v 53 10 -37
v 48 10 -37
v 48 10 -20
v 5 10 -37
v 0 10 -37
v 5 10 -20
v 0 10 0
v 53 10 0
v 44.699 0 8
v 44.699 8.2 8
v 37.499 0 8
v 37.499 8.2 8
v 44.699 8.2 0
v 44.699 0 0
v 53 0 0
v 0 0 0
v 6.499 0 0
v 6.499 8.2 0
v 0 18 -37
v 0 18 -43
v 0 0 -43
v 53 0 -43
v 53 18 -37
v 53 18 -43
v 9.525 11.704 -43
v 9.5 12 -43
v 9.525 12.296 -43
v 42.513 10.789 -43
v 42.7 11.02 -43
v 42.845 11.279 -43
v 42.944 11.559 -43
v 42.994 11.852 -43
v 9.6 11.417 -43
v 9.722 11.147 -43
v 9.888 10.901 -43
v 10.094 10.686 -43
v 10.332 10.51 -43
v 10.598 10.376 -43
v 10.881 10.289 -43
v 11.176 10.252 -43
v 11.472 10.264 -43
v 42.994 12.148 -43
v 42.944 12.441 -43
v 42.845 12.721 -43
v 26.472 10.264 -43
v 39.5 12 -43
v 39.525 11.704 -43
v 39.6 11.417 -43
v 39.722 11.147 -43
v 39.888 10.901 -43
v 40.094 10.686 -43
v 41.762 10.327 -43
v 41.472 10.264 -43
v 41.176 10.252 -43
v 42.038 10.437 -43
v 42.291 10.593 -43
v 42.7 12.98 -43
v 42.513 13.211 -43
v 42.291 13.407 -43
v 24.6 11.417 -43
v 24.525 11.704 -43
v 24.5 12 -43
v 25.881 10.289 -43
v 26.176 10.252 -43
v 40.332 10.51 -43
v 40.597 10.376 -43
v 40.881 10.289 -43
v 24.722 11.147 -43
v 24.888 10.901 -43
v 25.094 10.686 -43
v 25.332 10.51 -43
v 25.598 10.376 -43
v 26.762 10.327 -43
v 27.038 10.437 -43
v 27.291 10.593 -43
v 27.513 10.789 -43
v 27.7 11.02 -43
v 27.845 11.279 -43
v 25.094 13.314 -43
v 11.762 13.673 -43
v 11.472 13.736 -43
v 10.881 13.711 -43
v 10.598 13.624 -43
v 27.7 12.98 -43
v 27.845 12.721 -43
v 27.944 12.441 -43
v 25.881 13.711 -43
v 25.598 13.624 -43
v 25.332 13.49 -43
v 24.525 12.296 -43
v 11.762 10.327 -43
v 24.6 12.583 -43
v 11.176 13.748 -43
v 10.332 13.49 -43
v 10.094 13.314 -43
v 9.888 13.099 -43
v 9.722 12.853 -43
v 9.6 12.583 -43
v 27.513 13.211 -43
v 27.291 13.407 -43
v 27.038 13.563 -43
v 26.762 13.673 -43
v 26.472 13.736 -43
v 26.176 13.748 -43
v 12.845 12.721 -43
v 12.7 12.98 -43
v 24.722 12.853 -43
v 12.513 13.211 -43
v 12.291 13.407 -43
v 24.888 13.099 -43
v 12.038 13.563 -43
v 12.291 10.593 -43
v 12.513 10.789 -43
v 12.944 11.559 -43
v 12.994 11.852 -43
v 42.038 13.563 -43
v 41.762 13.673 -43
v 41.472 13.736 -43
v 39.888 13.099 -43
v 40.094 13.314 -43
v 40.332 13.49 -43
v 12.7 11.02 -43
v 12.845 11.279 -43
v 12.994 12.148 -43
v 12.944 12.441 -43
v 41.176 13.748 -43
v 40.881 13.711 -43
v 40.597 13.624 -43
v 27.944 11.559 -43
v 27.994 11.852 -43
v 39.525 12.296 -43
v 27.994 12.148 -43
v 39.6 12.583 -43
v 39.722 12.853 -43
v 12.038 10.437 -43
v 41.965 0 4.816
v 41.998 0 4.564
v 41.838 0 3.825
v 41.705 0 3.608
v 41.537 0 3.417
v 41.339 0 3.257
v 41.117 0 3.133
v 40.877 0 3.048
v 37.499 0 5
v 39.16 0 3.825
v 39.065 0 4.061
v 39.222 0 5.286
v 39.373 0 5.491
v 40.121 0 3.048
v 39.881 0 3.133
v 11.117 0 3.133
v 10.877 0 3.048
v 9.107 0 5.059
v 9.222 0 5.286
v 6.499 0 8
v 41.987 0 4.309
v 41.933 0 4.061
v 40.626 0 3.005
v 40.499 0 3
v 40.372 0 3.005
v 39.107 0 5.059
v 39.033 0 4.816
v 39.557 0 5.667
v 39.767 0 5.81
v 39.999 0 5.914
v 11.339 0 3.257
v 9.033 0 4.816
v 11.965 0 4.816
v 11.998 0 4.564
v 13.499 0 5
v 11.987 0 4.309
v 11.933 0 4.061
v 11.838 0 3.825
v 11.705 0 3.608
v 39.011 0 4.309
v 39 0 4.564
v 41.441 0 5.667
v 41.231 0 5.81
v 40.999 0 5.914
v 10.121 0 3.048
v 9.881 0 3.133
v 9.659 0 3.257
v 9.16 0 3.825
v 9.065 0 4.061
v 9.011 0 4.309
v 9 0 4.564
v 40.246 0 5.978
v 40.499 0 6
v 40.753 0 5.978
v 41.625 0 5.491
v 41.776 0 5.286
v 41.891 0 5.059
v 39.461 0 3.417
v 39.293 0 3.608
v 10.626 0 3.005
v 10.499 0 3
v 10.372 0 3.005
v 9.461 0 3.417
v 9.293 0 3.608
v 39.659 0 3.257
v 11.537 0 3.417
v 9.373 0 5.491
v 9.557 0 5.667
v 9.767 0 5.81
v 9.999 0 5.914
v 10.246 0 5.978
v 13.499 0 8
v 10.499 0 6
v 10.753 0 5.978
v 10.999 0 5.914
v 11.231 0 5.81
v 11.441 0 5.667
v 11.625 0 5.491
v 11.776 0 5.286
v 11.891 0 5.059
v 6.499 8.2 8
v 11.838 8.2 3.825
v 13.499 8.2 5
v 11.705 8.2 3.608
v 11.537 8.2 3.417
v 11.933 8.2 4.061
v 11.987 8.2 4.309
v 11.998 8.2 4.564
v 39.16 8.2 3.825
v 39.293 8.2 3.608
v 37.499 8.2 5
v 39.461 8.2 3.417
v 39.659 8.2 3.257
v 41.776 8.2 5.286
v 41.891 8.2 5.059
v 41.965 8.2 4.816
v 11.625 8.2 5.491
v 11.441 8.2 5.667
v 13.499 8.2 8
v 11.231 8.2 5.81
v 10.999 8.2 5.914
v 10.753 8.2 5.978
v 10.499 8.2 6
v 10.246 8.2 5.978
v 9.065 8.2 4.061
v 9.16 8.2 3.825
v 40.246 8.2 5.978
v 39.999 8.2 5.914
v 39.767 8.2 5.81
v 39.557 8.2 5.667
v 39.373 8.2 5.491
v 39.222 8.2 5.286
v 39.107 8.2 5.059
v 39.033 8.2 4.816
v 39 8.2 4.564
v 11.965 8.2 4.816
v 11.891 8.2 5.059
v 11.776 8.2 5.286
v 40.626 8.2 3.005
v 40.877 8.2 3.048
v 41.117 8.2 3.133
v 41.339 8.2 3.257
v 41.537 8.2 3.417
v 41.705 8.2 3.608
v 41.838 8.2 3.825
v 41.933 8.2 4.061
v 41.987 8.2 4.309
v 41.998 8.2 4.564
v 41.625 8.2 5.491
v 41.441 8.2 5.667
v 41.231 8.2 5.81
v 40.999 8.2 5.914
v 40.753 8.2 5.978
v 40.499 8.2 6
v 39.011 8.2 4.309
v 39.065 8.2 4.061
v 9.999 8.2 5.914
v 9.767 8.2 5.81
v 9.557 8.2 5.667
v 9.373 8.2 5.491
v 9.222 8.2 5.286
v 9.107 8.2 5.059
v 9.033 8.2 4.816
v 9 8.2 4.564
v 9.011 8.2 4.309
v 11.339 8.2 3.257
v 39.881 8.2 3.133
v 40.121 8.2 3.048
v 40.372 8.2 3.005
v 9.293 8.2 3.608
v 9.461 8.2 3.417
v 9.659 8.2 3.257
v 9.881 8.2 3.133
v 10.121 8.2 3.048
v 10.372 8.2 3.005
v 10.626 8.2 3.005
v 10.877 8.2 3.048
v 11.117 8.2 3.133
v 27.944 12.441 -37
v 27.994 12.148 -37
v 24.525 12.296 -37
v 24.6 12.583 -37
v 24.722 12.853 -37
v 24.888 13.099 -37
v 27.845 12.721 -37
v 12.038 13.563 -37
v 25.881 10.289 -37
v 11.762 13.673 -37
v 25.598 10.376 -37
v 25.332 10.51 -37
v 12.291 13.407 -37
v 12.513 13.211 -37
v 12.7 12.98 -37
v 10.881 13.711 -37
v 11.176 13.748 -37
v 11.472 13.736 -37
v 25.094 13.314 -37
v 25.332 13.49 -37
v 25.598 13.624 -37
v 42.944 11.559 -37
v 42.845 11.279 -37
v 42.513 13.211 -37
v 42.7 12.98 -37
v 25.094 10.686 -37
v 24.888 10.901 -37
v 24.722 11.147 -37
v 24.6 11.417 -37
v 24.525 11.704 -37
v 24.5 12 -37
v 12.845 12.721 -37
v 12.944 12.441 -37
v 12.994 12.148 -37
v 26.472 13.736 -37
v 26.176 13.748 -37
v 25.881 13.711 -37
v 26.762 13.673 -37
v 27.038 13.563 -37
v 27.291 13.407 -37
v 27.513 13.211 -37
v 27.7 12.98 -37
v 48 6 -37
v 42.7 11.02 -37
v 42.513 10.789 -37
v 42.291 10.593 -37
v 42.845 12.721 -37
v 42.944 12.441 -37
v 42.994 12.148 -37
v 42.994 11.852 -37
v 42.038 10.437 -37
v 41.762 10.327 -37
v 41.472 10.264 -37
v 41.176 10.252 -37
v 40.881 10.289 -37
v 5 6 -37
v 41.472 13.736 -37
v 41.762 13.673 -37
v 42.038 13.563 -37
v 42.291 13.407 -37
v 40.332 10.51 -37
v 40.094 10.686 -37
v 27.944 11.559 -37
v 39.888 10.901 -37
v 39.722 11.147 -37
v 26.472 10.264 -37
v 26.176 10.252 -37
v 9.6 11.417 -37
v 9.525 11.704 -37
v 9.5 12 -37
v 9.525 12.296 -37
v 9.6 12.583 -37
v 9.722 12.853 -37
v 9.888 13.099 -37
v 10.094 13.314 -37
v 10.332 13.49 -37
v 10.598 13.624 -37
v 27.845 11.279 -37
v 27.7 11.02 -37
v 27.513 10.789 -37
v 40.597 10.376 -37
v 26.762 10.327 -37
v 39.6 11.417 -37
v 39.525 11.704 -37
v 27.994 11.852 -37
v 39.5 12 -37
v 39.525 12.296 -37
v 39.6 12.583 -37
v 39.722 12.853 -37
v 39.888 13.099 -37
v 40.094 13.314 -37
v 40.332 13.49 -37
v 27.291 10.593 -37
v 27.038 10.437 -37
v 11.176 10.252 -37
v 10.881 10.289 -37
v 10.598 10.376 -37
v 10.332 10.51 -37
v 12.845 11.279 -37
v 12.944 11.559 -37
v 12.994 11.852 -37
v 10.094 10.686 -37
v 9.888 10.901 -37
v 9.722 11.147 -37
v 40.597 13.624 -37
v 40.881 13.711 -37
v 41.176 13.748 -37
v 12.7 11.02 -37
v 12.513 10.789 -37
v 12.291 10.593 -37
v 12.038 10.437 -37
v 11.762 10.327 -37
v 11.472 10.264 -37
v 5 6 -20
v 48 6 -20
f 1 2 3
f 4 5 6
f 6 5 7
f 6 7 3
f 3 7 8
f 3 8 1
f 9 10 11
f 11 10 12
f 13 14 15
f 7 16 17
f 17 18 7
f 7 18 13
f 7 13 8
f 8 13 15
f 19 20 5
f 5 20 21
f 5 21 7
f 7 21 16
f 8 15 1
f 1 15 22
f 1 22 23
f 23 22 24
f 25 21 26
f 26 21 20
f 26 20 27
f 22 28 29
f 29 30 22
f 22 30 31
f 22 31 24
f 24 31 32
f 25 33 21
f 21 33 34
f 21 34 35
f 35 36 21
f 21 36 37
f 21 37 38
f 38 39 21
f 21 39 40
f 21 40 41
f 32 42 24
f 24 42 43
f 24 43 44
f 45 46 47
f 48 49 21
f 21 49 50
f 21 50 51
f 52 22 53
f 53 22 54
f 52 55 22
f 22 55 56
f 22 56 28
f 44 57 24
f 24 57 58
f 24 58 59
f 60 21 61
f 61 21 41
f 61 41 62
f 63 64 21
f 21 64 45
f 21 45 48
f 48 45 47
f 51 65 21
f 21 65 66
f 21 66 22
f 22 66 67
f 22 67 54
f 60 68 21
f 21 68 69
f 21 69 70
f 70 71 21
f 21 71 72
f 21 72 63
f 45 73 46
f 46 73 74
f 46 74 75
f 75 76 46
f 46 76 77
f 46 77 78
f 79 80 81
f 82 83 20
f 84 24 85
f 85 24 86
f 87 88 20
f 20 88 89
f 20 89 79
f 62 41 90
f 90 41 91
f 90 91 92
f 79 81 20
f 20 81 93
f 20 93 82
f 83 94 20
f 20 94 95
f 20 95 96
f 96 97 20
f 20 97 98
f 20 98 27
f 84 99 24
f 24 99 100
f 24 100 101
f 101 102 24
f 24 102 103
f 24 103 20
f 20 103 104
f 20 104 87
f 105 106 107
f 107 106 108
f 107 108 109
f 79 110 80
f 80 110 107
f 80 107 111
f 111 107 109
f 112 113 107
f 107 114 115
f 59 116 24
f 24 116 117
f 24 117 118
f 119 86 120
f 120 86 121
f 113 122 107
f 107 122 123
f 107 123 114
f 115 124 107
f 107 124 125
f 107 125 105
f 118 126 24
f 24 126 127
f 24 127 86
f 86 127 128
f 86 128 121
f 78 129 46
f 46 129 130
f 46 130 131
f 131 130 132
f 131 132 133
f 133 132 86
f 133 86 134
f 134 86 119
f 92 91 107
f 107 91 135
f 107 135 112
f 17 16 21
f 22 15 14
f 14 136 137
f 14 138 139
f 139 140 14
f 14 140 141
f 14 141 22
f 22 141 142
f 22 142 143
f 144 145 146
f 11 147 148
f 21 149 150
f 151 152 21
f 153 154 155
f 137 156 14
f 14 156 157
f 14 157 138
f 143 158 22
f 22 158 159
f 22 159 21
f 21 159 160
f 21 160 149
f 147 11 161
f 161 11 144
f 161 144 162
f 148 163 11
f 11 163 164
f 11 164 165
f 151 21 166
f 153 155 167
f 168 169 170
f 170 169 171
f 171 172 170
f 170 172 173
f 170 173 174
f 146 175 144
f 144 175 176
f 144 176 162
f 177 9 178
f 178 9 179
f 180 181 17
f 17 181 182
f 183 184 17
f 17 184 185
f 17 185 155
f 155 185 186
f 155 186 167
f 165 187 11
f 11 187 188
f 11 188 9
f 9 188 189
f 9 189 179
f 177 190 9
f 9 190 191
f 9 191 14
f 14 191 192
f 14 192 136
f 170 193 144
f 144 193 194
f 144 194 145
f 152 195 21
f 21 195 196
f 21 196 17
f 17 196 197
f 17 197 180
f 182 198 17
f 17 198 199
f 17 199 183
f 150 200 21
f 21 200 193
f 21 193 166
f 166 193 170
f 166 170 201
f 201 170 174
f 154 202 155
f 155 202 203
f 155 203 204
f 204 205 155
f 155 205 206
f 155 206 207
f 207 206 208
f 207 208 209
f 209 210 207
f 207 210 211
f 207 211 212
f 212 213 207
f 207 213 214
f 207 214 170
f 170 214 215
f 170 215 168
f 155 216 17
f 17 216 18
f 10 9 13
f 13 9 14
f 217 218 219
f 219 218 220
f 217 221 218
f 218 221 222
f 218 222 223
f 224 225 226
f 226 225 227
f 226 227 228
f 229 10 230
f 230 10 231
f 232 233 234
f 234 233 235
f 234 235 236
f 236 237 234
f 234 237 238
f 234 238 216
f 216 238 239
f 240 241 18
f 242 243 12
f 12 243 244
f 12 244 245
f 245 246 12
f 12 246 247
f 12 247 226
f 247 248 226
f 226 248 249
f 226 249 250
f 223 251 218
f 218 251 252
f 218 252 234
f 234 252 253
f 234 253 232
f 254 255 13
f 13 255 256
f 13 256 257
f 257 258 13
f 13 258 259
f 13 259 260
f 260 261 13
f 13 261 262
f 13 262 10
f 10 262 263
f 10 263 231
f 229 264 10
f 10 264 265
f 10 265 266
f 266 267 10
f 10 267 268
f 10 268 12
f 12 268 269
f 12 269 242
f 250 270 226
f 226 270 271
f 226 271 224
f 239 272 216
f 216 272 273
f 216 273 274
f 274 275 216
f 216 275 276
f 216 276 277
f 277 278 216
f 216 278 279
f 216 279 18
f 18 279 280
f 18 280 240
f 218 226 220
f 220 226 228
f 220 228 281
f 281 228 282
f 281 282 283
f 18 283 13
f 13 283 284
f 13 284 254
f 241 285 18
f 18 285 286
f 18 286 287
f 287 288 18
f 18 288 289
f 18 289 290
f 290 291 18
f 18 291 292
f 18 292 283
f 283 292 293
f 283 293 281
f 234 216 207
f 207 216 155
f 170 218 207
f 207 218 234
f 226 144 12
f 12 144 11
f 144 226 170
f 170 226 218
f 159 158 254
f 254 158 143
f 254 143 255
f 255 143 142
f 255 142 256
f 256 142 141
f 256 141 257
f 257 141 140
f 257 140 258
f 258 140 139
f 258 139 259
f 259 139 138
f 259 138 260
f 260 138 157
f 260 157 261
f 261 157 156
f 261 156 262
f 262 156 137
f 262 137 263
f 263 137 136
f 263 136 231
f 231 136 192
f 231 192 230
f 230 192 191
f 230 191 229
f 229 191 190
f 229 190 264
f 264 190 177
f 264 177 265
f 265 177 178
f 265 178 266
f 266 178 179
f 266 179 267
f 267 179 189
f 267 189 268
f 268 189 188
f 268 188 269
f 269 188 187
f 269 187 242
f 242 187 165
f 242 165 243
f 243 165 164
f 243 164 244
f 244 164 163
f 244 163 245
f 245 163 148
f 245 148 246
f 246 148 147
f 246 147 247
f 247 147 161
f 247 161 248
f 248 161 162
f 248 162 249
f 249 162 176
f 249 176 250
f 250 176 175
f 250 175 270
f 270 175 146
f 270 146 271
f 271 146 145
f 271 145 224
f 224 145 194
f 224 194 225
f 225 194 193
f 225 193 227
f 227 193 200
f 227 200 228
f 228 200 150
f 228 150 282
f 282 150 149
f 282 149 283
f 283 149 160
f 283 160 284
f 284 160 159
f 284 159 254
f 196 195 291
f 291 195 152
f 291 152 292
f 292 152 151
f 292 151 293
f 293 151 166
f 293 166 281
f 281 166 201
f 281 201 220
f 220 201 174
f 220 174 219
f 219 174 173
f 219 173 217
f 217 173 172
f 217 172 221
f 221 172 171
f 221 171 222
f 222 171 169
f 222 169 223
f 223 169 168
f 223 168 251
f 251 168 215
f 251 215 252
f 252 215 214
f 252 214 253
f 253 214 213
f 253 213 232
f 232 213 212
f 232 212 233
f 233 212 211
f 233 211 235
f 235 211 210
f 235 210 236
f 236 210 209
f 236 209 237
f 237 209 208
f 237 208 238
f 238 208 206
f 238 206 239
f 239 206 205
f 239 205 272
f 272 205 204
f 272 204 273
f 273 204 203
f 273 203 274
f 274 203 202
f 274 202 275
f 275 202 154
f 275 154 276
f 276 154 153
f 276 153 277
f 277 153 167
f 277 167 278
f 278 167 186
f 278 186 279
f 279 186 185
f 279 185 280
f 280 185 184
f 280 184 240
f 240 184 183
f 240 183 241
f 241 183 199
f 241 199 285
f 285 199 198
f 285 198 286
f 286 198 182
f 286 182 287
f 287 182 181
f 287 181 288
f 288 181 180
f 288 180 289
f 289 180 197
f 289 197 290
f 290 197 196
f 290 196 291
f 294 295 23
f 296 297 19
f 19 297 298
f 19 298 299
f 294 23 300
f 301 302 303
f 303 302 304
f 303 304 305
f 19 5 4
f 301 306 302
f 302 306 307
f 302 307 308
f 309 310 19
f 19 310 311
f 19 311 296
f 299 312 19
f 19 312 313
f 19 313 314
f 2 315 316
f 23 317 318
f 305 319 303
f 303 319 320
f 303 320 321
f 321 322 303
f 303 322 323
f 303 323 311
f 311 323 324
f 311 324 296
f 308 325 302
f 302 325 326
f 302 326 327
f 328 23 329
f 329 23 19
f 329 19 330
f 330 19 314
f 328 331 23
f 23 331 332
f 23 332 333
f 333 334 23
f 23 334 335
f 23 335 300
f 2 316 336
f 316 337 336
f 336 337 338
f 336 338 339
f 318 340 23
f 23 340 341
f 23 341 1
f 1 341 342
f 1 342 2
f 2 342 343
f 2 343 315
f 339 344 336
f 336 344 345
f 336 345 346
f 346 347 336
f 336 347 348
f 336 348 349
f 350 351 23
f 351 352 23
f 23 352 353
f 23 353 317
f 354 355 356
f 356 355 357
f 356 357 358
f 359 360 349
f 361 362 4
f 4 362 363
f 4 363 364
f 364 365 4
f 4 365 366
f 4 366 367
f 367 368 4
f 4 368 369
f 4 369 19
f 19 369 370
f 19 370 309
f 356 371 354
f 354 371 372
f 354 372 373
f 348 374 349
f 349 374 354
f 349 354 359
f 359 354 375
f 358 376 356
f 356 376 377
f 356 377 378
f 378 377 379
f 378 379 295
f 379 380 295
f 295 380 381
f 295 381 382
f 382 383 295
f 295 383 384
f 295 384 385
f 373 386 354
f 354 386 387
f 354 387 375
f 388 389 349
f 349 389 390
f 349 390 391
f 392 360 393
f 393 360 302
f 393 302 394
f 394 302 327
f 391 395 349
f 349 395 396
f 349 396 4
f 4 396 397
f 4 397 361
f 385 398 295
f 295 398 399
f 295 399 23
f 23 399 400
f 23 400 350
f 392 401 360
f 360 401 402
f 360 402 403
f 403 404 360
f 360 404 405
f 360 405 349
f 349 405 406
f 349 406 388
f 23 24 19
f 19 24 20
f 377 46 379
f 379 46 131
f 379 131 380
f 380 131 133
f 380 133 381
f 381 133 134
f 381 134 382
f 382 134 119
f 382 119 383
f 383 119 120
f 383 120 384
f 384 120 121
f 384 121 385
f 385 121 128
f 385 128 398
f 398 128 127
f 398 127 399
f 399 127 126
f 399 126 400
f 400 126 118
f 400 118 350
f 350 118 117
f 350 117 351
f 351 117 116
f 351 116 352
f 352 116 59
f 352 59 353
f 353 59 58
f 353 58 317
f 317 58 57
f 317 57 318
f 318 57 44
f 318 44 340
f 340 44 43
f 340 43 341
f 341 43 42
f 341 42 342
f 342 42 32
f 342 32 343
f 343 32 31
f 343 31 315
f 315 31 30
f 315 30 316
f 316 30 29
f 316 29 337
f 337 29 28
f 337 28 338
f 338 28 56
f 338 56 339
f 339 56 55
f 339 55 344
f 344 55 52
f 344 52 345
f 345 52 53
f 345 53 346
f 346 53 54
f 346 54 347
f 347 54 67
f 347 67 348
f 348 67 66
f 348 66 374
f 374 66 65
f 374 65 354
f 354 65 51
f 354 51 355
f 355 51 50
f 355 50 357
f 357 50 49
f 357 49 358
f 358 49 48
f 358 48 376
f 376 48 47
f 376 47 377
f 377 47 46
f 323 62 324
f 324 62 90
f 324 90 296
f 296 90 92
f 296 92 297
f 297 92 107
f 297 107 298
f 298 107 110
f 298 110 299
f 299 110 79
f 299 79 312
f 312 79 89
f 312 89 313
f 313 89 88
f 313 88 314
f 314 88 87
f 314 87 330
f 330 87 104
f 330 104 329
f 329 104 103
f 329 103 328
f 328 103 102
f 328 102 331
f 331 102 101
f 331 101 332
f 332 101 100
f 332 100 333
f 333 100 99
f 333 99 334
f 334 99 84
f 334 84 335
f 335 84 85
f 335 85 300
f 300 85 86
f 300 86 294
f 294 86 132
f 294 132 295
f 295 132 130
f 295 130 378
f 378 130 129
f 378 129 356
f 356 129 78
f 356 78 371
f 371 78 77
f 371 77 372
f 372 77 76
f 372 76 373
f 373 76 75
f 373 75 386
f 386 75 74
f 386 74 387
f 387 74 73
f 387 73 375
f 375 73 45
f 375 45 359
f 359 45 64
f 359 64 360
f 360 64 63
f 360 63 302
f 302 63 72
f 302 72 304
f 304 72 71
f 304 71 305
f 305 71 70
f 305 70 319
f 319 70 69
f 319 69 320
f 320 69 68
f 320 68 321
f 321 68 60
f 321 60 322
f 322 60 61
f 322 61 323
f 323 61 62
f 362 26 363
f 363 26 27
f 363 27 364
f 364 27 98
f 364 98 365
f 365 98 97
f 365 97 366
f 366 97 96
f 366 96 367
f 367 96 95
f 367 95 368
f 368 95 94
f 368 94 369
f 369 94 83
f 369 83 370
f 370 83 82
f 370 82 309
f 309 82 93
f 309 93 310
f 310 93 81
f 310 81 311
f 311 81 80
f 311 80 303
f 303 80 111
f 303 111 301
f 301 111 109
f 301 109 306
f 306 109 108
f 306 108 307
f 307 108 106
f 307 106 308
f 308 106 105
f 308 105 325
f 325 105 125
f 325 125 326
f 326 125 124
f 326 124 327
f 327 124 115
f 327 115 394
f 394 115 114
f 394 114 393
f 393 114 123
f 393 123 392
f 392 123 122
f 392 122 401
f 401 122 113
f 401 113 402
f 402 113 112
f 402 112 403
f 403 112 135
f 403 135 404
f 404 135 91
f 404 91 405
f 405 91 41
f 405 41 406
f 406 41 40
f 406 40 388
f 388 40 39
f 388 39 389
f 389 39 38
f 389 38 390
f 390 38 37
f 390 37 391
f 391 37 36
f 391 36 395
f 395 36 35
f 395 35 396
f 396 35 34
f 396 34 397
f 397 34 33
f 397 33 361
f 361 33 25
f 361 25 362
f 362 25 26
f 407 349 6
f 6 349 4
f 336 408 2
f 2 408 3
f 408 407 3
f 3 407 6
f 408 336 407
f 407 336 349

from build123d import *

# Parameters (mm, degrees)
SKETCH2_W           = 53
SKETCH2_H           = 43
BOSS_EXTRUDE1_DEPTH = 10
SKETCH3_W           = 38.2
SKETCH3_H           = 8.2
BOSS_EXTRUDE2_DEPTH = 8
SKETCH4_W           = 24
SKETCH4_H           = 8.2
CUT_EXTRUDE1_DEPTH  = 3
SKETCH5_R           = 1.5
CUT_EXTRUDE2_DEPTH  = 69.740381145
SKETCH6_W           = 53
SKETCH6_H           = 6
BOSS_EXTRUDE4_DEPTH = 8
SKETCH7_R           = 1.75
CUT_EXTRUDE3_DEPTH  = 76.723180071
SKETCH8_W           = 43
SKETCH8_H           = 17
CUT_EXTRUDE4_DEPTH  = 4


with BuildPart() as part:
    # Sketch2 → Boss-Extrude1 (new body)
    with BuildSketch(Plane(origin=(0, 0, 0), x_dir=(1, 0, 0), z_dir=(0, 1, 0))):
        with Locations((26.5, 21.5)):
            Rectangle(SKETCH2_W, SKETCH2_H)
    extrude(amount=BOSS_EXTRUDE1_DEPTH)

    # Sketch3 → Boss-Extrude2 (add)
    with BuildSketch(Plane.XY):
        with Locations((25.59901915, 4.1)):
            Rectangle(SKETCH3_W, SKETCH3_H)
    extrude(amount=BOSS_EXTRUDE2_DEPTH)

    # Sketch4 → Cut-Extrude1 (cut)
    with BuildSketch(Plane.XY.offset(8)):
        with Locations((25.49901915, 4.1)):
            Rectangle(SKETCH4_W, SKETCH4_H)
    extrude(amount=-CUT_EXTRUDE1_DEPTH, mode=Mode.SUBTRACT)

    # Sketch5 → Cut-Extrude2 (cut, through all)
    with BuildSketch(Plane(origin=(0, 8.2, 0), x_dir=(1, 0, 0), z_dir=(0, 1, 0))):
        with Locations(Location((40.49901915, -4.5, 0), (0, 0, 270))):
            Circle(SKETCH5_R)
        with Locations(Location((10.49901915, -4.5, 0), (0, 0, 270))):
            Circle(SKETCH5_R)
    extrude(amount=-CUT_EXTRUDE2_DEPTH, mode=Mode.SUBTRACT)

    # Sketch6 → Boss-Extrude4 (add)
    with BuildSketch(Plane(origin=(0, 10, 0), x_dir=(1, 0, 0), z_dir=(0, 1, 0))):
        with Locations((26.5, 40)):
            Rectangle(SKETCH6_W, SKETCH6_H)
    extrude(amount=BOSS_EXTRUDE4_DEPTH)

    # Sketch7 → Cut-Extrude3 (cut, through all)
    with BuildSketch(Plane(origin=(0, 0, -43), x_dir=(-1, 0, 0), z_dir=(0, 0, -1))):
        with Locations((-41.25, 12)):
            Circle(SKETCH7_R)
        with Locations((-26.25, 12)):
            Circle(SKETCH7_R)
        with Locations((-11.25, 12)):
            Circle(SKETCH7_R)
    extrude(amount=-CUT_EXTRUDE3_DEPTH, mode=Mode.SUBTRACT)

    # Sketch8 → Cut-Extrude4 (cut)
    with BuildSketch(Plane(origin=(0, 10, 0), x_dir=(1, 0, 0), z_dir=(0, 1, 0))):
        with Locations((26.5, 28.5)):
            Rectangle(SKETCH8_W, SKETCH8_H)
    extrude(amount=-CUT_EXTRUDE4_DEPTH, mode=Mode.SUBTRACT)


solid = part.part
